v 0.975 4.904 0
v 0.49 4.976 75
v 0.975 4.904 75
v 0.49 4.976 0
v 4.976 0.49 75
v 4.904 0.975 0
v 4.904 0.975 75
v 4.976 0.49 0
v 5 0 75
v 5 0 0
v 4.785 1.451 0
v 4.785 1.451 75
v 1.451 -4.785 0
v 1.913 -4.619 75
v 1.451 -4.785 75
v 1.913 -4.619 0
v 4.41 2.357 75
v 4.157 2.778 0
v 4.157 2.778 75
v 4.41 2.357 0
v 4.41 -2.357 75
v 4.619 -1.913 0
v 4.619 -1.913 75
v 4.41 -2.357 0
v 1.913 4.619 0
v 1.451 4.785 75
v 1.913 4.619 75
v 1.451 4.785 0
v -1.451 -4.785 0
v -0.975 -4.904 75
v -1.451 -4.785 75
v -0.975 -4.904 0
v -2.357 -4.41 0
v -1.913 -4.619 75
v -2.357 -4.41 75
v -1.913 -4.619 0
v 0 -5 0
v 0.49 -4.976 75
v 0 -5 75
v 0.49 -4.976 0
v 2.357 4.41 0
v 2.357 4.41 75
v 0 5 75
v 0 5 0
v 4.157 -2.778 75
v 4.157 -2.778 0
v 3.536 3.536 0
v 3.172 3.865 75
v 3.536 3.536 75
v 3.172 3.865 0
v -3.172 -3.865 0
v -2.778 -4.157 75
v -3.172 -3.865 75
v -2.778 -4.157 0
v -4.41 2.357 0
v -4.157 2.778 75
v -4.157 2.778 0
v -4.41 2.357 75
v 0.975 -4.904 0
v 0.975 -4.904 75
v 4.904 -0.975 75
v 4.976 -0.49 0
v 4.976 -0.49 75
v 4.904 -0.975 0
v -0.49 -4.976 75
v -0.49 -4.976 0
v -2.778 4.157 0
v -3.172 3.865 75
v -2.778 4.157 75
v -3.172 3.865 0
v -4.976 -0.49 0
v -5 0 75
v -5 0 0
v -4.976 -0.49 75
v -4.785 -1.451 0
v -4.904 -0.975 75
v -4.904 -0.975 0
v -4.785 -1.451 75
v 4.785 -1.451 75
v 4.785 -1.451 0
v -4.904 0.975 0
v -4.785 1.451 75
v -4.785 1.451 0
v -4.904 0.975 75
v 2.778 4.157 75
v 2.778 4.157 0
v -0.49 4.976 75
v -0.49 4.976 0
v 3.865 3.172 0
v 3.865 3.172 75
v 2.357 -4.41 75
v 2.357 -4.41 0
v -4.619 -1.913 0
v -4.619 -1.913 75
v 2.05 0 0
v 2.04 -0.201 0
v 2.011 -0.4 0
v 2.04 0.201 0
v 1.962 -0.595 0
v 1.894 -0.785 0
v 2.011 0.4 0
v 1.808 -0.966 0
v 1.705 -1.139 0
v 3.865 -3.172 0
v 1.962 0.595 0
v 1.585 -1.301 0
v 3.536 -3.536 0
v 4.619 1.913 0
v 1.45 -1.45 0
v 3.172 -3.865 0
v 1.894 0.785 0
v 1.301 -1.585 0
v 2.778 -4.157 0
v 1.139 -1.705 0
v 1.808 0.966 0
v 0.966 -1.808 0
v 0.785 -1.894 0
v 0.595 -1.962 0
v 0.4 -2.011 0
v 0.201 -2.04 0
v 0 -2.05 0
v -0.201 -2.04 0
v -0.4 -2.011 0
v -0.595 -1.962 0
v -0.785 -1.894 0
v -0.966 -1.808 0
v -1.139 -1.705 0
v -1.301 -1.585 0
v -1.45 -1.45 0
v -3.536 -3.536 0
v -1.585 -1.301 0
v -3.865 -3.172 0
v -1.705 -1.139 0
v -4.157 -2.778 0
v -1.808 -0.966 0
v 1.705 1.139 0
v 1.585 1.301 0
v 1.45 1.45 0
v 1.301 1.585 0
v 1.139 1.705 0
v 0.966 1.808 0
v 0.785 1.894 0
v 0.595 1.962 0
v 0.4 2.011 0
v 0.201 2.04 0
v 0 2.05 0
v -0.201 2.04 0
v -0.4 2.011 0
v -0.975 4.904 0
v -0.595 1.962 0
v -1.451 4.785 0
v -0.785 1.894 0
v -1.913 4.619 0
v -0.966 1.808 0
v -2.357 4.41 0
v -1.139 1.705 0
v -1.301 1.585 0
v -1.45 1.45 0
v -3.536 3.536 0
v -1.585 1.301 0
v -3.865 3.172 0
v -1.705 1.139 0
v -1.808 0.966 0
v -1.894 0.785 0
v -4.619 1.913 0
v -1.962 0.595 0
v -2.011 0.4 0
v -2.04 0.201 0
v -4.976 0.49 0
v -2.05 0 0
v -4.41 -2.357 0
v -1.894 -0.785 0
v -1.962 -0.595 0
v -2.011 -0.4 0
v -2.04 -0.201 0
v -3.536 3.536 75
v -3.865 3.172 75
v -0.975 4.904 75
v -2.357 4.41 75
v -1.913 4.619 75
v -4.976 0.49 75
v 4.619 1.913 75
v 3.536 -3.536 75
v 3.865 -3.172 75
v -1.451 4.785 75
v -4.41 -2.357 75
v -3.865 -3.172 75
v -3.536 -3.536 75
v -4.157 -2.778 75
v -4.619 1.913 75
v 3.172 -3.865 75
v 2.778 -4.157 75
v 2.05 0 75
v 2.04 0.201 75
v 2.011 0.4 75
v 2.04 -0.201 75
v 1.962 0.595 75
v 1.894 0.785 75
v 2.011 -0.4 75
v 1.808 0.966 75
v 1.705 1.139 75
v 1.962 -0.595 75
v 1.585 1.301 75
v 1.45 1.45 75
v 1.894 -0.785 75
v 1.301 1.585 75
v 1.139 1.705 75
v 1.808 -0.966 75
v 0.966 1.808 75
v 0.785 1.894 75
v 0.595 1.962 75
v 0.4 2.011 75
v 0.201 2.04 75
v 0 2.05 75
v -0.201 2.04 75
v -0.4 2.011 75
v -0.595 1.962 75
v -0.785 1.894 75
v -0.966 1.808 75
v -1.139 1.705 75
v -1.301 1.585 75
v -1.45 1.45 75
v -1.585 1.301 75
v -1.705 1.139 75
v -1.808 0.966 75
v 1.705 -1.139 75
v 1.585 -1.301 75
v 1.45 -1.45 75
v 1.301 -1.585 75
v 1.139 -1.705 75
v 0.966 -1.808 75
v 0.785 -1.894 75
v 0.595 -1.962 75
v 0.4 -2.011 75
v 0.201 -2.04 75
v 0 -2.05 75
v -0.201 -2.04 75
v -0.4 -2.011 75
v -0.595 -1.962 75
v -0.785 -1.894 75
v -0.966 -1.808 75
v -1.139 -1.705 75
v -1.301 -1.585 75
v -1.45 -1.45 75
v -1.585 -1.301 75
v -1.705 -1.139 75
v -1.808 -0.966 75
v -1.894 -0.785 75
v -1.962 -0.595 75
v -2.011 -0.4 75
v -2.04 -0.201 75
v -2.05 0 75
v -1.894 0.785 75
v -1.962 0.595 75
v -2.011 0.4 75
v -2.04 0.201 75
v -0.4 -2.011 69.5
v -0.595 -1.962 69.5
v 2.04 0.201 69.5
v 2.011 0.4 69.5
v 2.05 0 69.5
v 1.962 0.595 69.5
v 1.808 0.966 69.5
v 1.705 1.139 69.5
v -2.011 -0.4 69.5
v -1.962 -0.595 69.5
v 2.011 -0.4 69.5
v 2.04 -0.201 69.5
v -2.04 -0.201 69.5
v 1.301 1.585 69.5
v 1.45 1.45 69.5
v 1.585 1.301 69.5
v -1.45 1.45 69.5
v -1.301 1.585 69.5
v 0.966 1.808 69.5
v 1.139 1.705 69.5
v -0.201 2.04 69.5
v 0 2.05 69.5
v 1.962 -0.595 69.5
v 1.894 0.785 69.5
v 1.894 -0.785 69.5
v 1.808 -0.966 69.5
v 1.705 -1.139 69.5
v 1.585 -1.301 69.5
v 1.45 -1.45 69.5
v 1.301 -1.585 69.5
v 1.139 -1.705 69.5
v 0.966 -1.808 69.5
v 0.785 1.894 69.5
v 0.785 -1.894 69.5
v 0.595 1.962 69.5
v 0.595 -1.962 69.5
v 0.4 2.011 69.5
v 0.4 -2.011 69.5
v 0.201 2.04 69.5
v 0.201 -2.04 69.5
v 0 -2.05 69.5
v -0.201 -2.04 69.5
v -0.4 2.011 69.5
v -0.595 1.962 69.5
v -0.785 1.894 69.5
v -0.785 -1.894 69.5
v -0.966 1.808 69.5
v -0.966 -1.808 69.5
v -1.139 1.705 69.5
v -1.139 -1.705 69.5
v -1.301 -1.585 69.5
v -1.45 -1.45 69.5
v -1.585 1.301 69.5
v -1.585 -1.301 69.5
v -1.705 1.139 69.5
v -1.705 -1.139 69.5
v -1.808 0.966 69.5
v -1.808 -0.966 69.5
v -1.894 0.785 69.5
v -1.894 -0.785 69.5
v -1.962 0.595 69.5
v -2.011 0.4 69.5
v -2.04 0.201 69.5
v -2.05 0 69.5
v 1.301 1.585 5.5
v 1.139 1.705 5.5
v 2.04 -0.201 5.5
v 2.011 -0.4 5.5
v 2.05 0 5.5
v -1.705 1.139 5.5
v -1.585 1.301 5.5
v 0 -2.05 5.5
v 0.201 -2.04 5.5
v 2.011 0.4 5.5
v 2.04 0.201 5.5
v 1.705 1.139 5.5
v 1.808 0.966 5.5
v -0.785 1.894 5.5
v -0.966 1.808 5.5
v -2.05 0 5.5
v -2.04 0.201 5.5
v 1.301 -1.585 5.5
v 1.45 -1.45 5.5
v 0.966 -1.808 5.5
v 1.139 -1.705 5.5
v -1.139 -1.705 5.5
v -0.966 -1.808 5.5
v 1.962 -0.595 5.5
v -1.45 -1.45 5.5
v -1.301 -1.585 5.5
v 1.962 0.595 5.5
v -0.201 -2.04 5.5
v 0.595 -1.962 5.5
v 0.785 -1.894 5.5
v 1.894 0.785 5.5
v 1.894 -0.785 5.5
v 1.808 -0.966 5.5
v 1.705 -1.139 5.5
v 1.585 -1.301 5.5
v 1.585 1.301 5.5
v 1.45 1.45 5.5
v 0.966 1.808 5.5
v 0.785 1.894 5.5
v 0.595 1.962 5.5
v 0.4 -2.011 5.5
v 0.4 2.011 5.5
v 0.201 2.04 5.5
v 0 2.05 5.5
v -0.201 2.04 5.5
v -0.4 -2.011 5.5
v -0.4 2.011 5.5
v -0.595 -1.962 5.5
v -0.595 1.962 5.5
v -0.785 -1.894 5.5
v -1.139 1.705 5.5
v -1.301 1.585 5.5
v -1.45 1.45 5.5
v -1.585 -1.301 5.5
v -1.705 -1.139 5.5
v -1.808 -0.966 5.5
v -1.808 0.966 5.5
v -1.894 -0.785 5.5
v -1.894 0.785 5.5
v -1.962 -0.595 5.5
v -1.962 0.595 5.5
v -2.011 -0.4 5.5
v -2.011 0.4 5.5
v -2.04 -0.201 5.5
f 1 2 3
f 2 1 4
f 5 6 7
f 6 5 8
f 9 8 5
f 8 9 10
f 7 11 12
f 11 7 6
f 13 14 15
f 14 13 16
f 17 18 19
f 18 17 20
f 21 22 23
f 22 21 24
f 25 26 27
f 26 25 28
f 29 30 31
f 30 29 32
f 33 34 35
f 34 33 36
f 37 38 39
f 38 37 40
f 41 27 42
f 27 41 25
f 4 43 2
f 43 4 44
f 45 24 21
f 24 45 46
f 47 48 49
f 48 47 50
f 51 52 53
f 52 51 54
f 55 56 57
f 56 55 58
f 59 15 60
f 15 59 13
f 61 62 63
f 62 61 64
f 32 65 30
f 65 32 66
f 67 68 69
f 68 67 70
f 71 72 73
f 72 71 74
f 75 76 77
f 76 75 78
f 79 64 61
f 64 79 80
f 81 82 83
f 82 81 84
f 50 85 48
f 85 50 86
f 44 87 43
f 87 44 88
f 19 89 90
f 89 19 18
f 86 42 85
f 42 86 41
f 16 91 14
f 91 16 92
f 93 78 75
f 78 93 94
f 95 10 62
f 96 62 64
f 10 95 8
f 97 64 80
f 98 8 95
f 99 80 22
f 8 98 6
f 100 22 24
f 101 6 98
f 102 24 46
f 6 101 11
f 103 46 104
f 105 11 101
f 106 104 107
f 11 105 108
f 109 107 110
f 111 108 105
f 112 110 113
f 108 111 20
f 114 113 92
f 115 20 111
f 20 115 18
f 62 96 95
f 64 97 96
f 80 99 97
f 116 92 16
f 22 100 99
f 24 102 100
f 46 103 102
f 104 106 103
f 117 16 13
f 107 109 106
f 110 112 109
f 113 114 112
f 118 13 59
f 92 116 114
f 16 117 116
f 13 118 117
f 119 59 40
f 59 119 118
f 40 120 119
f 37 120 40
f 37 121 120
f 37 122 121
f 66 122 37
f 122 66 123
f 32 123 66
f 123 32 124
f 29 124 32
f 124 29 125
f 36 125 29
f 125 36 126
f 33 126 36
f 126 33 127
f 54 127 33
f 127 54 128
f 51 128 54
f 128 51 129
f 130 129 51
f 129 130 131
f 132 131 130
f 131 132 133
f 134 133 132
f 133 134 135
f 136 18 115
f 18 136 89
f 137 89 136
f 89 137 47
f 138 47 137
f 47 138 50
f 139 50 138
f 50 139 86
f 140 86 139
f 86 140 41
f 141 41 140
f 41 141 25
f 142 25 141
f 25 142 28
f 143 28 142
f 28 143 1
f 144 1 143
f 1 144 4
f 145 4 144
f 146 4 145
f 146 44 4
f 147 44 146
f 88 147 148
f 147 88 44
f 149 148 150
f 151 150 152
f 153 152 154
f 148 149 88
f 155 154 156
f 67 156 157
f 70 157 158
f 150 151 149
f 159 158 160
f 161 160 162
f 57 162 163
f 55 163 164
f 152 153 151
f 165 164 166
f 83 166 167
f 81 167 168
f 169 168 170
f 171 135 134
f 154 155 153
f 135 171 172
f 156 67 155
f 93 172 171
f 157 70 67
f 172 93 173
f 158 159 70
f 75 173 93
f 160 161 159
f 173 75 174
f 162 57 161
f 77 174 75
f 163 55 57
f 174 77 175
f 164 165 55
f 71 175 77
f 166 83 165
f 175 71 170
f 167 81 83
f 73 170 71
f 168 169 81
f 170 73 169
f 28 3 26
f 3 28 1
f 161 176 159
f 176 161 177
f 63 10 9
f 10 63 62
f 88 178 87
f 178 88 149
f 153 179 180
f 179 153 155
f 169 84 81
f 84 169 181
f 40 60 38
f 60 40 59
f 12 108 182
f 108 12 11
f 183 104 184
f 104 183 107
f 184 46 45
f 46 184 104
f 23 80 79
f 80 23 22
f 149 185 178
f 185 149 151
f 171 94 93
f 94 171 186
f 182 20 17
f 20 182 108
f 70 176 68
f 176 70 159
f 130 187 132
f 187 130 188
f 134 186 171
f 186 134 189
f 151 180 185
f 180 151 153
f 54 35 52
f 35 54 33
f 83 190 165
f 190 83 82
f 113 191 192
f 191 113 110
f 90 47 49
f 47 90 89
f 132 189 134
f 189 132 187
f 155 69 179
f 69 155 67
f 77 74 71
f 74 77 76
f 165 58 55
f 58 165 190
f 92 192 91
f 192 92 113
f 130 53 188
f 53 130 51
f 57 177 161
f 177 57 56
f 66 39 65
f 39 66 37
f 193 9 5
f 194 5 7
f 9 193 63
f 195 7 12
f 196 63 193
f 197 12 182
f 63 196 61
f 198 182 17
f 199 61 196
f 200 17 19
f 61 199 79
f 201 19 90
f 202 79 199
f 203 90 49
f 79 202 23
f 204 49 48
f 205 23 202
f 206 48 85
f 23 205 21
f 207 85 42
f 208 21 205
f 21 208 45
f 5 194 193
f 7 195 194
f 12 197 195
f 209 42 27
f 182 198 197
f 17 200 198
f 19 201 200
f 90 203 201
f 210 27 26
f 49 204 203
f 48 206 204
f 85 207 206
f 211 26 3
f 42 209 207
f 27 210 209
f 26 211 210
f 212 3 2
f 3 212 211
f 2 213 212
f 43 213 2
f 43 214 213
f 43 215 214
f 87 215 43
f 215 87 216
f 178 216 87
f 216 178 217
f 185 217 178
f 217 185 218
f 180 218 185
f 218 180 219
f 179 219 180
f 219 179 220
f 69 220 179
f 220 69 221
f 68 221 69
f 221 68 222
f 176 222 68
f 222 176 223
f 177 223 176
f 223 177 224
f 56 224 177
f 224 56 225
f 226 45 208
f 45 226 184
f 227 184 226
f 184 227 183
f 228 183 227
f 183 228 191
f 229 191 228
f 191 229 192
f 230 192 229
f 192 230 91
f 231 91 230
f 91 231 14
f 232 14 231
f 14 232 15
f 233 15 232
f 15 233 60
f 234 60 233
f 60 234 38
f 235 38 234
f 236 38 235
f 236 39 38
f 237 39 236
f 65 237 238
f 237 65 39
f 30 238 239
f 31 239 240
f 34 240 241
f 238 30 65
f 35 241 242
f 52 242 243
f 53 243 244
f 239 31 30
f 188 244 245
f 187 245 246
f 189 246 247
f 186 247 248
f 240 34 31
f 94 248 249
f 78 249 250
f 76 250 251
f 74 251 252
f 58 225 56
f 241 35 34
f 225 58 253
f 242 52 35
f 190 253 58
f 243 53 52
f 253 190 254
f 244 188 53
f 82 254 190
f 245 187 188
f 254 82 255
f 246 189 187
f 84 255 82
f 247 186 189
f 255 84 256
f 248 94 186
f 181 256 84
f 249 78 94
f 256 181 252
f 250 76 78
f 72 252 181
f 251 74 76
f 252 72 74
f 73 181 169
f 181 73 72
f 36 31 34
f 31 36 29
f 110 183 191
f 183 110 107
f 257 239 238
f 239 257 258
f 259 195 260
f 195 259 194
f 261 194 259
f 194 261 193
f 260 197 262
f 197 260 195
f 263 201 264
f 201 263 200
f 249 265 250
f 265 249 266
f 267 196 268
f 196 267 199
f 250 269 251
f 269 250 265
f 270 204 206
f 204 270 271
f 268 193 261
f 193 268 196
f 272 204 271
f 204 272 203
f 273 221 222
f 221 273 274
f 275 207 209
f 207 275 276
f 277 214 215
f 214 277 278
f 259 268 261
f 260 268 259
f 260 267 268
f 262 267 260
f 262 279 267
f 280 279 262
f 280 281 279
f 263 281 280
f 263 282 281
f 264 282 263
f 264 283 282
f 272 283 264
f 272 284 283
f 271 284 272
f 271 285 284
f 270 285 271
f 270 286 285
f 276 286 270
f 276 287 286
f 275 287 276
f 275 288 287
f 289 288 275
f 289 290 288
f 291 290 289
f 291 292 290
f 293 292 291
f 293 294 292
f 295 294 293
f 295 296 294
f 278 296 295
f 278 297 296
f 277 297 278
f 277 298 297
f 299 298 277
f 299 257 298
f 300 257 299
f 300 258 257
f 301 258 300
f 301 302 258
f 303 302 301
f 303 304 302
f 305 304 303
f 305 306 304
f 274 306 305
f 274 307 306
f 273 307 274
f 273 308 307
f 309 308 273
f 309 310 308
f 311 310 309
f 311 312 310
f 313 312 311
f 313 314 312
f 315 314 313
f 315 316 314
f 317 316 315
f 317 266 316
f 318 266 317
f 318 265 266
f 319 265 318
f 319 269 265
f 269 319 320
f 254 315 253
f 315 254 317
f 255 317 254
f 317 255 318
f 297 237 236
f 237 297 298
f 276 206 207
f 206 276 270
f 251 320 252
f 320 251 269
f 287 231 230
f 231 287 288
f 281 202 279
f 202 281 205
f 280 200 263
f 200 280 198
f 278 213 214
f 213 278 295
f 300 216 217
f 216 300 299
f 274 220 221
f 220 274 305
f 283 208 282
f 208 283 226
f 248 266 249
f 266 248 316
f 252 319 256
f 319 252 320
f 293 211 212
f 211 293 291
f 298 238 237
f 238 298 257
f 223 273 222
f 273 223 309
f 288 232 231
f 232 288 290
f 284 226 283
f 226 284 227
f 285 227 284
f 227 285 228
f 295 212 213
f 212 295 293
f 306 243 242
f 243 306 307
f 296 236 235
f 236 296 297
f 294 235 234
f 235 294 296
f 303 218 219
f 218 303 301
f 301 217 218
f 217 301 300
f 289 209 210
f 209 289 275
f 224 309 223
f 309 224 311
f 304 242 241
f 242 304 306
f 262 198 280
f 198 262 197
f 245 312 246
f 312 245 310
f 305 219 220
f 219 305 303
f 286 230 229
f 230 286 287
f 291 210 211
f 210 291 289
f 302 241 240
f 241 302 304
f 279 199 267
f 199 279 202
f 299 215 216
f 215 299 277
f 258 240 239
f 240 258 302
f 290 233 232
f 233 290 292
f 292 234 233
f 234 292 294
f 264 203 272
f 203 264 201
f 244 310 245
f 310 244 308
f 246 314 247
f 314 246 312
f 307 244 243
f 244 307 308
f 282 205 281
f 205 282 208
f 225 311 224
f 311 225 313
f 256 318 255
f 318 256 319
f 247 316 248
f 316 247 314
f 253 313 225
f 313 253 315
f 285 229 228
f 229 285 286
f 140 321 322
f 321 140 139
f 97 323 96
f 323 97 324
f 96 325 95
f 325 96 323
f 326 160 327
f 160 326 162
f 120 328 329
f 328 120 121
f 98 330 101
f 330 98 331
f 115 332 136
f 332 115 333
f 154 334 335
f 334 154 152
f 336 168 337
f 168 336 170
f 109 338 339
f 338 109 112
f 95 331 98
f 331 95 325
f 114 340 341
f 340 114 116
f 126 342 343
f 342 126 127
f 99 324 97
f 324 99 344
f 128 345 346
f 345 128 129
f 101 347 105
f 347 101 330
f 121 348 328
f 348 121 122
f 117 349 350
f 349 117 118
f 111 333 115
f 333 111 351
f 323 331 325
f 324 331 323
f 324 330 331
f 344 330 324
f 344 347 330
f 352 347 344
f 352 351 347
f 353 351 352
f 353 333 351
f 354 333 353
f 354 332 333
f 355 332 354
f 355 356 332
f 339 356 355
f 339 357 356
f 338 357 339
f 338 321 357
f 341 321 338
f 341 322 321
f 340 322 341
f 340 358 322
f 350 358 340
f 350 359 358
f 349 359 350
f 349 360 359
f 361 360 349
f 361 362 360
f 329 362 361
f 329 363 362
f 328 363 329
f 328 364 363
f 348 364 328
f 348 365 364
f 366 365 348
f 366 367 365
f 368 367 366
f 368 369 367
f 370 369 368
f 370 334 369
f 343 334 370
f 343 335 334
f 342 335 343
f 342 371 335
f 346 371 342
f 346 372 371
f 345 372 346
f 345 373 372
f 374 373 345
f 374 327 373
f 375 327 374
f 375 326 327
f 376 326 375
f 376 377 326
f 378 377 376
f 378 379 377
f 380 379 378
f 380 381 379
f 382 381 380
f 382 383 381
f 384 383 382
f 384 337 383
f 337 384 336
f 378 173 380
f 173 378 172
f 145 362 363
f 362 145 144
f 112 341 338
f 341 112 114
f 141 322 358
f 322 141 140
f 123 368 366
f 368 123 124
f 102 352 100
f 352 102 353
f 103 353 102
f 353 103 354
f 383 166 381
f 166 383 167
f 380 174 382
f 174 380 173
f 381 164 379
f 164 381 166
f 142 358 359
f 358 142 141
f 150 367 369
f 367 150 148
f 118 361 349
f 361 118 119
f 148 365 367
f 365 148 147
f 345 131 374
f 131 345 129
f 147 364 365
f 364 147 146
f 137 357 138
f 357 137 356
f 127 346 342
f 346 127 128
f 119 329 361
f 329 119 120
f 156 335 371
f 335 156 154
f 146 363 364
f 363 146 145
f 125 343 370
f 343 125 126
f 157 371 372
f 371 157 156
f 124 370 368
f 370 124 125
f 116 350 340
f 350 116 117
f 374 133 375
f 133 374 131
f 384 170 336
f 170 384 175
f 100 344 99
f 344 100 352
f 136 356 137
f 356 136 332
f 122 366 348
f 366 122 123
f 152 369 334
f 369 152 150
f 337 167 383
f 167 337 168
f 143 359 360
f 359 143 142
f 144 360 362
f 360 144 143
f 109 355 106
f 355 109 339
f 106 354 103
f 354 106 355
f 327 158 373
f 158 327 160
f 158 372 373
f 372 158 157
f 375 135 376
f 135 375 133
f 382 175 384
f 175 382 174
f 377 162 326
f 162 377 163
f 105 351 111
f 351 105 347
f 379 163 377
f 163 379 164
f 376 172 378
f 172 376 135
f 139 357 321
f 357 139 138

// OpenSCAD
// file: ../lib.scad
// Solar Rover - shared helper modules
include <config.scad>

// Rounded rectangle plate, centred in XY, sitting on Z=0.
module rbox(size, r=4) {
    x = size[0]; y = size[1]; z = size[2];
    hull() for (sx=[-1,1], sy=[-1,1])
        translate([sx*(x/2-r), sy*(y/2-r), 0]) cylinder(r=r, h=z);
}

// Vertical hole through everything (subtract). Centred on the origin.
module hole(d, h=200) { translate([0,0,-h/2]) cylinder(d=d, h=h); }

// Heat-set insert pocket opening upward at Z=top.
module insert_m3(top) { translate([0,0,top-m3_insert_h]) cylinder(d=m3_insert_d, h=m3_insert_h+0.01); }
module insert_m25(top) { translate([0,0,top-4.5]) cylinder(d=m25_insert_d, h=4.51); }

// Boss for an insert: cylinder from z0 to z1, with insert pocket at the top.
module insert_boss_m3(z0, z1, od=8) {
    difference() {
        translate([0,0,z0]) cylinder(d=od, h=z1-z0);
        insert_m3(z1);
    }
}

// Slot of length l (centre-to-centre) along X, diameter d.
module slot(l, d, h=200) {
    hull() for (sx=[-1,1]) translate([sx*l/2,0,-h/2]) cylinder(d=d, h=h);
}

// Counterbored M3 clearance hole, head at Z=top going down.
module m3_cbore(top, depth=m3_head_h) {
    hole(m3_clear);
    translate([0,0,top-depth]) cylinder(d=m3_head_d, h=depth+50);
}

// Captive hex nut pocket, opening at Z=z (nut goes in from that face).
module m3_nut_pocket(z, depth=m3_nut_h+0.4) {
    translate([0,0,z-depth]) cylinder(d=m3_nut_af/cos(30), h=depth+0.01, $fn=6);
}

// Pair of zip-tie slots (for modules without mounting holes), spaced s apart along X.
module zip_slots(s=30, w=4, l=2.2) {
    for (sx=[-1,1]) translate([sx*s/2,0,0]) cube([l, w, 50], center=true);
}

// D-shaped bore for TT motor shafts.
module d_bore(h=50, extra=0) {
    intersection() {
        cylinder(d=tt_shaft_d+extra, h=h);
        translate([-(tt_shaft_d+extra)/2, -(tt_shaft_flat+extra)/2, 0])
            cube([tt_shaft_d+extra, tt_shaft_flat+extra, h]);
    }
}

// Simple spur gear (trapezoid teeth), module m, z teeth, thickness t. Good enough
// for a slow servo gripper; not a precision involute.
module spur_gear(m=1.25, z=16, t=6, bore=0) {
    rp = m*z/2; ra = rp + m; rf = rp - 1.25*m;
    difference() {
        linear_extrude(t) union() {
            circle(r=rf, $fn=z*4);
            for (i=[0:z-1]) rotate(i*360/z)
                polygon([[rf*cos(-90/z*1.1), rf*sin(-90/z*1.1)],
                         [ra*cos(-90/z*0.45), ra*sin(-90/z*0.45)],
                         [ra*cos( 90/z*0.45), ra*sin( 90/z*0.45)],
                         [rf*cos( 90/z*1.1), rf*sin( 90/z*1.1)]]);
        }
        if (bore > 0) hole(bore);
    }
}

// Servo pocket for an MG996R lying with its output axis along +Z.
// Case centred so the OUTPUT SHAFT is at the origin; case top at Z=0.
module mg996_case_neg(extra=tol) {
    translate([-mg996_shaft_off-extra, -mg996_w/2-extra, -mg996_h-extra])
        cube([mg996_l+2*extra, mg996_w+2*extra, mg996_h+extra+0.01]);
}
module mg996_flange_holes(d=m3_clear, h=60) {
    cx = mg996_l/2 - mg996_shaft_off;
    for (sx=[-1,1], sy=[-1,1])
        translate([cx+sx*mg996_hole_dx/2, sy*mg996_hole_dy/2, -h/2]) cylinder(d=d, h=h);
}
module mg90_case_neg(extra=tol) {
    translate([-mg90_shaft_off-extra, -mg90_w/2-extra, -mg90_h-extra])
        cube([mg90_l+2*extra, mg90_w+2*extra, mg90_h+extra+0.01]);
}
module mg90_flange_holes(d=m2_pilot, h=60) {
    cx = mg90_l/2 - mg90_shaft_off;
    for (sx=[-1,1]) translate([cx+sx*mg90_hole_dx/2, 0, -h/2]) cylinder(d=d, h=h);
}
// Round MG996R horn screw pattern (4 holes) + centre relief.
module mg996_horn_holes(d=m3_clear) {
    hole(9);
    for (a=[0:90:270]) rotate(a) translate([mg996_horn_hole_r,0,0]) hole(d);
}
// file: ../config.scad
// Solar Rover - shared dimensions (all mm)
// Coordinate system: X = forward, Y = left, Z = up. Origin = deck centre, ground at Z=0.
//
// Values marked MEASURE come from typical datasheets/clones and vary between
// suppliers. Measure your parts with calipers and edit them here before printing;
// every part reads its dimensions from this file.

$fn = 64;

// ---------- print / fit ----------
tol        = 0.25;   // general clearance per side
wall       = 2.4;    // default wall (6 perimeters at 0.4 mm nozzle)

// ---------- fasteners ----------
m3_clear     = 3.4;   // M3 clearance hole
m3_insert_d  = 4.1;   // hole for M3x5x4 brass heat-set insert (OD ~4.6)
m3_insert_h  = 5.5;   // insert hole depth
m3_head_d    = 6.2;   // socket head counterbore
m3_head_h    = 3.2;
m3_nut_af    = 5.6;   // nut across flats (+clearance)
m3_nut_h     = 2.6;
m25_clear    = 2.9;
m25_insert_d = 3.5;   // M2.5 insert hole (OD ~4.0)
m2_clear     = 2.4;
m2_pilot     = 1.7;   // pilot hole for M2 thread-forming screw

// ---------- deck ----------
deck_l     = 300;     // printed as two 150 mm halves
deck_w     = 146;
deck_t     = 4;
rib_h      = 8;
rib_w      = 2.4;
flange_h   = 14;      // joint flange (bolts the halves together)
flange_t   = 5;

// ---------- drive ----------
wheel_d       = 65;
wheel_w       = 26;
axle_z        = wheel_d/2;    // axle height above ground
axle_x        = 100;          // front axle at +axle_x, rear at -axle_x
// TT gear motor (dual-shaft, 1:48). MEASURE.
tt_body_l     = 64;           // along X (gearbox + motor can)
tt_body_t     = 22.5;         // along Y (shaft direction)
tt_body_h     = 18.8;         // along Z
tt_shaft_from_end = 11.3;     // shaft centre to gearbox front end
tt_shaft_d    = 5.4;          // D-shaft across round
tt_shaft_flat = 3.7;          // D-shaft across flats
tt_shaft_len  = 9;            // per side, beyond the body face
// two through-holes parallel to the shaft, positions relative to shaft centre [x, z]. MEASURE.
tt_holes      = [[-20.0, 5.5], [-20.0, -5.5]];
motor_outer_y = 72;           // motor face nearest the wheel
clamp_t       = 3;            // clamp plate thickness
deck_bottom_z = axle_z + tt_body_h/2 + clamp_t;   // 44.6
deck_top_z    = deck_bottom_z + deck_t;

// ---------- encoder ----------
enc_slots   = 20;
enc_disc_d  = 22;
enc_disc_t  = 1.6;

// ---------- turret / arm ----------
turret_x      = 108;
turret_d      = 84;           // base OD; top plate skirt overlaps it
turret_h      = 48;           // fixed base height above deck (servo hangs inside)
turret_deck_r = 30;           // 4x M3 at 45/135/225/315 deg: turret base to deck
turret_bolts  = [[20,28],[-20,28],[20,-28],[-20,-28]];  // module interface on the turret top (4x M3)
shoulder_z    = 45;           // shoulder axis above the turret top plate
// MG996R servo. MEASURE.
mg996_l   = 40.7;  mg996_w = 19.7;  mg996_h = 37.0;   // case (h = to top of case)
mg996_flange_l = 54.5; mg996_flange_z = 27.5;  mg996_flange_t = 2.5;
mg996_hole_dx = 49.5; mg996_hole_dy = 10.0; mg996_hole_d = 4.5;
mg996_shaft_off = 10.0;       // output shaft centre from case end
mg996_spline_h  = 6.0;        // case top to horn face
mg996_horn_d    = 22;         // round metal horn
mg996_horn_hole_r = 7.5;      // horn screw circle radius (MEASURE: usually 4 holes)
// MG90S servo. MEASURE.
mg90_l = 22.8; mg90_w = 12.2; mg90_h = 22.7;
mg90_flange_l = 32.5; mg90_flange_z = 16.0; mg90_flange_t = 2.5;
mg90_hole_dx = 27.6; mg90_hole_d = 2.0;
mg90_shaft_off = 6.0;
mg90_spline_h = 5.0;
mg90_horn_d = 7;              // horn hub (single-arm horn)

link_upper = 100;   // shoulder -> elbow
link_fore  = 90;    // elbow -> wrist
link_hand  = 70;    // wrist -> fingertip

// ---------- power / electronics ----------
cell_holder = [77, 80, 21];   // 4x18650 holder footprint. MEASURE.
pi0_holes   = [58, 23];       // Raspberry Pi Zero 2 W, M2.5
pca_holes   = [55.9, 19.0];   // Adafruit-style PCA9685, M2.5. MEASURE (clones vary)
esp_exp_holes = [47, 70];     // ESP32 38-pin screw-terminal expansion board (77x54 mm), M3. MEASURE.
cradle_tb6612 = [20.5, 20.5];  // TB6612FNG breakout board outline. MEASURE.
cradle_mp1584 = [22.4, 17.0];  // MP1584 mini buck outline. MEASURE.
module_slot_w = 2.6;          // module-plate slots: M2/M2.5 screw + nut, or a 2.5 mm zip tie
tray_standoff_h = 32;         // power tray top to logic tray underside
// charge tray: a slotted plate on 4 legs over the battery holder
charge_tray_c    = [-106, 0];         // centre on the deck (same as the battery holder)
charge_tray_size = [76, 102];         // X, Y
charge_tray_z    = 24;                // deck top to plate underside (holder is 21 mm tall)
charge_tray_legs = [for (x=[-34,28], sy=[-1,1]) [x, sy*46]];   // relative to the centre; the front pair clears the motor-clamp inserts

// ---------- body / solar ----------
panel     = [110, 136, 3];    // 6V 2W panel: X, Y, thickness. MEASURE.
roof_post_h = 75;             // deck top to roof tray underside (room for plugged-in jumpers)
tray_frame  = 4;
roof_front_x = 60;            // front tray spans -60..60, rear tray -180..-60
// main file
// Roof post (print 10). Stands on the deck; M3x10 from under the deck into the
// bottom insert, M3x8 from the roof tray into the top insert.
// Print upright, 100% infill or 6 walls.
include <../config.scad>
use <../lib.scad>

difference() {
    cylinder(d=10, h=roof_post_h);
    insert_m3(roof_post_h);
    translate([0,0,m3_insert_h]) rotate([180,0,0]) insert_m3(m3_insert_h);
}
